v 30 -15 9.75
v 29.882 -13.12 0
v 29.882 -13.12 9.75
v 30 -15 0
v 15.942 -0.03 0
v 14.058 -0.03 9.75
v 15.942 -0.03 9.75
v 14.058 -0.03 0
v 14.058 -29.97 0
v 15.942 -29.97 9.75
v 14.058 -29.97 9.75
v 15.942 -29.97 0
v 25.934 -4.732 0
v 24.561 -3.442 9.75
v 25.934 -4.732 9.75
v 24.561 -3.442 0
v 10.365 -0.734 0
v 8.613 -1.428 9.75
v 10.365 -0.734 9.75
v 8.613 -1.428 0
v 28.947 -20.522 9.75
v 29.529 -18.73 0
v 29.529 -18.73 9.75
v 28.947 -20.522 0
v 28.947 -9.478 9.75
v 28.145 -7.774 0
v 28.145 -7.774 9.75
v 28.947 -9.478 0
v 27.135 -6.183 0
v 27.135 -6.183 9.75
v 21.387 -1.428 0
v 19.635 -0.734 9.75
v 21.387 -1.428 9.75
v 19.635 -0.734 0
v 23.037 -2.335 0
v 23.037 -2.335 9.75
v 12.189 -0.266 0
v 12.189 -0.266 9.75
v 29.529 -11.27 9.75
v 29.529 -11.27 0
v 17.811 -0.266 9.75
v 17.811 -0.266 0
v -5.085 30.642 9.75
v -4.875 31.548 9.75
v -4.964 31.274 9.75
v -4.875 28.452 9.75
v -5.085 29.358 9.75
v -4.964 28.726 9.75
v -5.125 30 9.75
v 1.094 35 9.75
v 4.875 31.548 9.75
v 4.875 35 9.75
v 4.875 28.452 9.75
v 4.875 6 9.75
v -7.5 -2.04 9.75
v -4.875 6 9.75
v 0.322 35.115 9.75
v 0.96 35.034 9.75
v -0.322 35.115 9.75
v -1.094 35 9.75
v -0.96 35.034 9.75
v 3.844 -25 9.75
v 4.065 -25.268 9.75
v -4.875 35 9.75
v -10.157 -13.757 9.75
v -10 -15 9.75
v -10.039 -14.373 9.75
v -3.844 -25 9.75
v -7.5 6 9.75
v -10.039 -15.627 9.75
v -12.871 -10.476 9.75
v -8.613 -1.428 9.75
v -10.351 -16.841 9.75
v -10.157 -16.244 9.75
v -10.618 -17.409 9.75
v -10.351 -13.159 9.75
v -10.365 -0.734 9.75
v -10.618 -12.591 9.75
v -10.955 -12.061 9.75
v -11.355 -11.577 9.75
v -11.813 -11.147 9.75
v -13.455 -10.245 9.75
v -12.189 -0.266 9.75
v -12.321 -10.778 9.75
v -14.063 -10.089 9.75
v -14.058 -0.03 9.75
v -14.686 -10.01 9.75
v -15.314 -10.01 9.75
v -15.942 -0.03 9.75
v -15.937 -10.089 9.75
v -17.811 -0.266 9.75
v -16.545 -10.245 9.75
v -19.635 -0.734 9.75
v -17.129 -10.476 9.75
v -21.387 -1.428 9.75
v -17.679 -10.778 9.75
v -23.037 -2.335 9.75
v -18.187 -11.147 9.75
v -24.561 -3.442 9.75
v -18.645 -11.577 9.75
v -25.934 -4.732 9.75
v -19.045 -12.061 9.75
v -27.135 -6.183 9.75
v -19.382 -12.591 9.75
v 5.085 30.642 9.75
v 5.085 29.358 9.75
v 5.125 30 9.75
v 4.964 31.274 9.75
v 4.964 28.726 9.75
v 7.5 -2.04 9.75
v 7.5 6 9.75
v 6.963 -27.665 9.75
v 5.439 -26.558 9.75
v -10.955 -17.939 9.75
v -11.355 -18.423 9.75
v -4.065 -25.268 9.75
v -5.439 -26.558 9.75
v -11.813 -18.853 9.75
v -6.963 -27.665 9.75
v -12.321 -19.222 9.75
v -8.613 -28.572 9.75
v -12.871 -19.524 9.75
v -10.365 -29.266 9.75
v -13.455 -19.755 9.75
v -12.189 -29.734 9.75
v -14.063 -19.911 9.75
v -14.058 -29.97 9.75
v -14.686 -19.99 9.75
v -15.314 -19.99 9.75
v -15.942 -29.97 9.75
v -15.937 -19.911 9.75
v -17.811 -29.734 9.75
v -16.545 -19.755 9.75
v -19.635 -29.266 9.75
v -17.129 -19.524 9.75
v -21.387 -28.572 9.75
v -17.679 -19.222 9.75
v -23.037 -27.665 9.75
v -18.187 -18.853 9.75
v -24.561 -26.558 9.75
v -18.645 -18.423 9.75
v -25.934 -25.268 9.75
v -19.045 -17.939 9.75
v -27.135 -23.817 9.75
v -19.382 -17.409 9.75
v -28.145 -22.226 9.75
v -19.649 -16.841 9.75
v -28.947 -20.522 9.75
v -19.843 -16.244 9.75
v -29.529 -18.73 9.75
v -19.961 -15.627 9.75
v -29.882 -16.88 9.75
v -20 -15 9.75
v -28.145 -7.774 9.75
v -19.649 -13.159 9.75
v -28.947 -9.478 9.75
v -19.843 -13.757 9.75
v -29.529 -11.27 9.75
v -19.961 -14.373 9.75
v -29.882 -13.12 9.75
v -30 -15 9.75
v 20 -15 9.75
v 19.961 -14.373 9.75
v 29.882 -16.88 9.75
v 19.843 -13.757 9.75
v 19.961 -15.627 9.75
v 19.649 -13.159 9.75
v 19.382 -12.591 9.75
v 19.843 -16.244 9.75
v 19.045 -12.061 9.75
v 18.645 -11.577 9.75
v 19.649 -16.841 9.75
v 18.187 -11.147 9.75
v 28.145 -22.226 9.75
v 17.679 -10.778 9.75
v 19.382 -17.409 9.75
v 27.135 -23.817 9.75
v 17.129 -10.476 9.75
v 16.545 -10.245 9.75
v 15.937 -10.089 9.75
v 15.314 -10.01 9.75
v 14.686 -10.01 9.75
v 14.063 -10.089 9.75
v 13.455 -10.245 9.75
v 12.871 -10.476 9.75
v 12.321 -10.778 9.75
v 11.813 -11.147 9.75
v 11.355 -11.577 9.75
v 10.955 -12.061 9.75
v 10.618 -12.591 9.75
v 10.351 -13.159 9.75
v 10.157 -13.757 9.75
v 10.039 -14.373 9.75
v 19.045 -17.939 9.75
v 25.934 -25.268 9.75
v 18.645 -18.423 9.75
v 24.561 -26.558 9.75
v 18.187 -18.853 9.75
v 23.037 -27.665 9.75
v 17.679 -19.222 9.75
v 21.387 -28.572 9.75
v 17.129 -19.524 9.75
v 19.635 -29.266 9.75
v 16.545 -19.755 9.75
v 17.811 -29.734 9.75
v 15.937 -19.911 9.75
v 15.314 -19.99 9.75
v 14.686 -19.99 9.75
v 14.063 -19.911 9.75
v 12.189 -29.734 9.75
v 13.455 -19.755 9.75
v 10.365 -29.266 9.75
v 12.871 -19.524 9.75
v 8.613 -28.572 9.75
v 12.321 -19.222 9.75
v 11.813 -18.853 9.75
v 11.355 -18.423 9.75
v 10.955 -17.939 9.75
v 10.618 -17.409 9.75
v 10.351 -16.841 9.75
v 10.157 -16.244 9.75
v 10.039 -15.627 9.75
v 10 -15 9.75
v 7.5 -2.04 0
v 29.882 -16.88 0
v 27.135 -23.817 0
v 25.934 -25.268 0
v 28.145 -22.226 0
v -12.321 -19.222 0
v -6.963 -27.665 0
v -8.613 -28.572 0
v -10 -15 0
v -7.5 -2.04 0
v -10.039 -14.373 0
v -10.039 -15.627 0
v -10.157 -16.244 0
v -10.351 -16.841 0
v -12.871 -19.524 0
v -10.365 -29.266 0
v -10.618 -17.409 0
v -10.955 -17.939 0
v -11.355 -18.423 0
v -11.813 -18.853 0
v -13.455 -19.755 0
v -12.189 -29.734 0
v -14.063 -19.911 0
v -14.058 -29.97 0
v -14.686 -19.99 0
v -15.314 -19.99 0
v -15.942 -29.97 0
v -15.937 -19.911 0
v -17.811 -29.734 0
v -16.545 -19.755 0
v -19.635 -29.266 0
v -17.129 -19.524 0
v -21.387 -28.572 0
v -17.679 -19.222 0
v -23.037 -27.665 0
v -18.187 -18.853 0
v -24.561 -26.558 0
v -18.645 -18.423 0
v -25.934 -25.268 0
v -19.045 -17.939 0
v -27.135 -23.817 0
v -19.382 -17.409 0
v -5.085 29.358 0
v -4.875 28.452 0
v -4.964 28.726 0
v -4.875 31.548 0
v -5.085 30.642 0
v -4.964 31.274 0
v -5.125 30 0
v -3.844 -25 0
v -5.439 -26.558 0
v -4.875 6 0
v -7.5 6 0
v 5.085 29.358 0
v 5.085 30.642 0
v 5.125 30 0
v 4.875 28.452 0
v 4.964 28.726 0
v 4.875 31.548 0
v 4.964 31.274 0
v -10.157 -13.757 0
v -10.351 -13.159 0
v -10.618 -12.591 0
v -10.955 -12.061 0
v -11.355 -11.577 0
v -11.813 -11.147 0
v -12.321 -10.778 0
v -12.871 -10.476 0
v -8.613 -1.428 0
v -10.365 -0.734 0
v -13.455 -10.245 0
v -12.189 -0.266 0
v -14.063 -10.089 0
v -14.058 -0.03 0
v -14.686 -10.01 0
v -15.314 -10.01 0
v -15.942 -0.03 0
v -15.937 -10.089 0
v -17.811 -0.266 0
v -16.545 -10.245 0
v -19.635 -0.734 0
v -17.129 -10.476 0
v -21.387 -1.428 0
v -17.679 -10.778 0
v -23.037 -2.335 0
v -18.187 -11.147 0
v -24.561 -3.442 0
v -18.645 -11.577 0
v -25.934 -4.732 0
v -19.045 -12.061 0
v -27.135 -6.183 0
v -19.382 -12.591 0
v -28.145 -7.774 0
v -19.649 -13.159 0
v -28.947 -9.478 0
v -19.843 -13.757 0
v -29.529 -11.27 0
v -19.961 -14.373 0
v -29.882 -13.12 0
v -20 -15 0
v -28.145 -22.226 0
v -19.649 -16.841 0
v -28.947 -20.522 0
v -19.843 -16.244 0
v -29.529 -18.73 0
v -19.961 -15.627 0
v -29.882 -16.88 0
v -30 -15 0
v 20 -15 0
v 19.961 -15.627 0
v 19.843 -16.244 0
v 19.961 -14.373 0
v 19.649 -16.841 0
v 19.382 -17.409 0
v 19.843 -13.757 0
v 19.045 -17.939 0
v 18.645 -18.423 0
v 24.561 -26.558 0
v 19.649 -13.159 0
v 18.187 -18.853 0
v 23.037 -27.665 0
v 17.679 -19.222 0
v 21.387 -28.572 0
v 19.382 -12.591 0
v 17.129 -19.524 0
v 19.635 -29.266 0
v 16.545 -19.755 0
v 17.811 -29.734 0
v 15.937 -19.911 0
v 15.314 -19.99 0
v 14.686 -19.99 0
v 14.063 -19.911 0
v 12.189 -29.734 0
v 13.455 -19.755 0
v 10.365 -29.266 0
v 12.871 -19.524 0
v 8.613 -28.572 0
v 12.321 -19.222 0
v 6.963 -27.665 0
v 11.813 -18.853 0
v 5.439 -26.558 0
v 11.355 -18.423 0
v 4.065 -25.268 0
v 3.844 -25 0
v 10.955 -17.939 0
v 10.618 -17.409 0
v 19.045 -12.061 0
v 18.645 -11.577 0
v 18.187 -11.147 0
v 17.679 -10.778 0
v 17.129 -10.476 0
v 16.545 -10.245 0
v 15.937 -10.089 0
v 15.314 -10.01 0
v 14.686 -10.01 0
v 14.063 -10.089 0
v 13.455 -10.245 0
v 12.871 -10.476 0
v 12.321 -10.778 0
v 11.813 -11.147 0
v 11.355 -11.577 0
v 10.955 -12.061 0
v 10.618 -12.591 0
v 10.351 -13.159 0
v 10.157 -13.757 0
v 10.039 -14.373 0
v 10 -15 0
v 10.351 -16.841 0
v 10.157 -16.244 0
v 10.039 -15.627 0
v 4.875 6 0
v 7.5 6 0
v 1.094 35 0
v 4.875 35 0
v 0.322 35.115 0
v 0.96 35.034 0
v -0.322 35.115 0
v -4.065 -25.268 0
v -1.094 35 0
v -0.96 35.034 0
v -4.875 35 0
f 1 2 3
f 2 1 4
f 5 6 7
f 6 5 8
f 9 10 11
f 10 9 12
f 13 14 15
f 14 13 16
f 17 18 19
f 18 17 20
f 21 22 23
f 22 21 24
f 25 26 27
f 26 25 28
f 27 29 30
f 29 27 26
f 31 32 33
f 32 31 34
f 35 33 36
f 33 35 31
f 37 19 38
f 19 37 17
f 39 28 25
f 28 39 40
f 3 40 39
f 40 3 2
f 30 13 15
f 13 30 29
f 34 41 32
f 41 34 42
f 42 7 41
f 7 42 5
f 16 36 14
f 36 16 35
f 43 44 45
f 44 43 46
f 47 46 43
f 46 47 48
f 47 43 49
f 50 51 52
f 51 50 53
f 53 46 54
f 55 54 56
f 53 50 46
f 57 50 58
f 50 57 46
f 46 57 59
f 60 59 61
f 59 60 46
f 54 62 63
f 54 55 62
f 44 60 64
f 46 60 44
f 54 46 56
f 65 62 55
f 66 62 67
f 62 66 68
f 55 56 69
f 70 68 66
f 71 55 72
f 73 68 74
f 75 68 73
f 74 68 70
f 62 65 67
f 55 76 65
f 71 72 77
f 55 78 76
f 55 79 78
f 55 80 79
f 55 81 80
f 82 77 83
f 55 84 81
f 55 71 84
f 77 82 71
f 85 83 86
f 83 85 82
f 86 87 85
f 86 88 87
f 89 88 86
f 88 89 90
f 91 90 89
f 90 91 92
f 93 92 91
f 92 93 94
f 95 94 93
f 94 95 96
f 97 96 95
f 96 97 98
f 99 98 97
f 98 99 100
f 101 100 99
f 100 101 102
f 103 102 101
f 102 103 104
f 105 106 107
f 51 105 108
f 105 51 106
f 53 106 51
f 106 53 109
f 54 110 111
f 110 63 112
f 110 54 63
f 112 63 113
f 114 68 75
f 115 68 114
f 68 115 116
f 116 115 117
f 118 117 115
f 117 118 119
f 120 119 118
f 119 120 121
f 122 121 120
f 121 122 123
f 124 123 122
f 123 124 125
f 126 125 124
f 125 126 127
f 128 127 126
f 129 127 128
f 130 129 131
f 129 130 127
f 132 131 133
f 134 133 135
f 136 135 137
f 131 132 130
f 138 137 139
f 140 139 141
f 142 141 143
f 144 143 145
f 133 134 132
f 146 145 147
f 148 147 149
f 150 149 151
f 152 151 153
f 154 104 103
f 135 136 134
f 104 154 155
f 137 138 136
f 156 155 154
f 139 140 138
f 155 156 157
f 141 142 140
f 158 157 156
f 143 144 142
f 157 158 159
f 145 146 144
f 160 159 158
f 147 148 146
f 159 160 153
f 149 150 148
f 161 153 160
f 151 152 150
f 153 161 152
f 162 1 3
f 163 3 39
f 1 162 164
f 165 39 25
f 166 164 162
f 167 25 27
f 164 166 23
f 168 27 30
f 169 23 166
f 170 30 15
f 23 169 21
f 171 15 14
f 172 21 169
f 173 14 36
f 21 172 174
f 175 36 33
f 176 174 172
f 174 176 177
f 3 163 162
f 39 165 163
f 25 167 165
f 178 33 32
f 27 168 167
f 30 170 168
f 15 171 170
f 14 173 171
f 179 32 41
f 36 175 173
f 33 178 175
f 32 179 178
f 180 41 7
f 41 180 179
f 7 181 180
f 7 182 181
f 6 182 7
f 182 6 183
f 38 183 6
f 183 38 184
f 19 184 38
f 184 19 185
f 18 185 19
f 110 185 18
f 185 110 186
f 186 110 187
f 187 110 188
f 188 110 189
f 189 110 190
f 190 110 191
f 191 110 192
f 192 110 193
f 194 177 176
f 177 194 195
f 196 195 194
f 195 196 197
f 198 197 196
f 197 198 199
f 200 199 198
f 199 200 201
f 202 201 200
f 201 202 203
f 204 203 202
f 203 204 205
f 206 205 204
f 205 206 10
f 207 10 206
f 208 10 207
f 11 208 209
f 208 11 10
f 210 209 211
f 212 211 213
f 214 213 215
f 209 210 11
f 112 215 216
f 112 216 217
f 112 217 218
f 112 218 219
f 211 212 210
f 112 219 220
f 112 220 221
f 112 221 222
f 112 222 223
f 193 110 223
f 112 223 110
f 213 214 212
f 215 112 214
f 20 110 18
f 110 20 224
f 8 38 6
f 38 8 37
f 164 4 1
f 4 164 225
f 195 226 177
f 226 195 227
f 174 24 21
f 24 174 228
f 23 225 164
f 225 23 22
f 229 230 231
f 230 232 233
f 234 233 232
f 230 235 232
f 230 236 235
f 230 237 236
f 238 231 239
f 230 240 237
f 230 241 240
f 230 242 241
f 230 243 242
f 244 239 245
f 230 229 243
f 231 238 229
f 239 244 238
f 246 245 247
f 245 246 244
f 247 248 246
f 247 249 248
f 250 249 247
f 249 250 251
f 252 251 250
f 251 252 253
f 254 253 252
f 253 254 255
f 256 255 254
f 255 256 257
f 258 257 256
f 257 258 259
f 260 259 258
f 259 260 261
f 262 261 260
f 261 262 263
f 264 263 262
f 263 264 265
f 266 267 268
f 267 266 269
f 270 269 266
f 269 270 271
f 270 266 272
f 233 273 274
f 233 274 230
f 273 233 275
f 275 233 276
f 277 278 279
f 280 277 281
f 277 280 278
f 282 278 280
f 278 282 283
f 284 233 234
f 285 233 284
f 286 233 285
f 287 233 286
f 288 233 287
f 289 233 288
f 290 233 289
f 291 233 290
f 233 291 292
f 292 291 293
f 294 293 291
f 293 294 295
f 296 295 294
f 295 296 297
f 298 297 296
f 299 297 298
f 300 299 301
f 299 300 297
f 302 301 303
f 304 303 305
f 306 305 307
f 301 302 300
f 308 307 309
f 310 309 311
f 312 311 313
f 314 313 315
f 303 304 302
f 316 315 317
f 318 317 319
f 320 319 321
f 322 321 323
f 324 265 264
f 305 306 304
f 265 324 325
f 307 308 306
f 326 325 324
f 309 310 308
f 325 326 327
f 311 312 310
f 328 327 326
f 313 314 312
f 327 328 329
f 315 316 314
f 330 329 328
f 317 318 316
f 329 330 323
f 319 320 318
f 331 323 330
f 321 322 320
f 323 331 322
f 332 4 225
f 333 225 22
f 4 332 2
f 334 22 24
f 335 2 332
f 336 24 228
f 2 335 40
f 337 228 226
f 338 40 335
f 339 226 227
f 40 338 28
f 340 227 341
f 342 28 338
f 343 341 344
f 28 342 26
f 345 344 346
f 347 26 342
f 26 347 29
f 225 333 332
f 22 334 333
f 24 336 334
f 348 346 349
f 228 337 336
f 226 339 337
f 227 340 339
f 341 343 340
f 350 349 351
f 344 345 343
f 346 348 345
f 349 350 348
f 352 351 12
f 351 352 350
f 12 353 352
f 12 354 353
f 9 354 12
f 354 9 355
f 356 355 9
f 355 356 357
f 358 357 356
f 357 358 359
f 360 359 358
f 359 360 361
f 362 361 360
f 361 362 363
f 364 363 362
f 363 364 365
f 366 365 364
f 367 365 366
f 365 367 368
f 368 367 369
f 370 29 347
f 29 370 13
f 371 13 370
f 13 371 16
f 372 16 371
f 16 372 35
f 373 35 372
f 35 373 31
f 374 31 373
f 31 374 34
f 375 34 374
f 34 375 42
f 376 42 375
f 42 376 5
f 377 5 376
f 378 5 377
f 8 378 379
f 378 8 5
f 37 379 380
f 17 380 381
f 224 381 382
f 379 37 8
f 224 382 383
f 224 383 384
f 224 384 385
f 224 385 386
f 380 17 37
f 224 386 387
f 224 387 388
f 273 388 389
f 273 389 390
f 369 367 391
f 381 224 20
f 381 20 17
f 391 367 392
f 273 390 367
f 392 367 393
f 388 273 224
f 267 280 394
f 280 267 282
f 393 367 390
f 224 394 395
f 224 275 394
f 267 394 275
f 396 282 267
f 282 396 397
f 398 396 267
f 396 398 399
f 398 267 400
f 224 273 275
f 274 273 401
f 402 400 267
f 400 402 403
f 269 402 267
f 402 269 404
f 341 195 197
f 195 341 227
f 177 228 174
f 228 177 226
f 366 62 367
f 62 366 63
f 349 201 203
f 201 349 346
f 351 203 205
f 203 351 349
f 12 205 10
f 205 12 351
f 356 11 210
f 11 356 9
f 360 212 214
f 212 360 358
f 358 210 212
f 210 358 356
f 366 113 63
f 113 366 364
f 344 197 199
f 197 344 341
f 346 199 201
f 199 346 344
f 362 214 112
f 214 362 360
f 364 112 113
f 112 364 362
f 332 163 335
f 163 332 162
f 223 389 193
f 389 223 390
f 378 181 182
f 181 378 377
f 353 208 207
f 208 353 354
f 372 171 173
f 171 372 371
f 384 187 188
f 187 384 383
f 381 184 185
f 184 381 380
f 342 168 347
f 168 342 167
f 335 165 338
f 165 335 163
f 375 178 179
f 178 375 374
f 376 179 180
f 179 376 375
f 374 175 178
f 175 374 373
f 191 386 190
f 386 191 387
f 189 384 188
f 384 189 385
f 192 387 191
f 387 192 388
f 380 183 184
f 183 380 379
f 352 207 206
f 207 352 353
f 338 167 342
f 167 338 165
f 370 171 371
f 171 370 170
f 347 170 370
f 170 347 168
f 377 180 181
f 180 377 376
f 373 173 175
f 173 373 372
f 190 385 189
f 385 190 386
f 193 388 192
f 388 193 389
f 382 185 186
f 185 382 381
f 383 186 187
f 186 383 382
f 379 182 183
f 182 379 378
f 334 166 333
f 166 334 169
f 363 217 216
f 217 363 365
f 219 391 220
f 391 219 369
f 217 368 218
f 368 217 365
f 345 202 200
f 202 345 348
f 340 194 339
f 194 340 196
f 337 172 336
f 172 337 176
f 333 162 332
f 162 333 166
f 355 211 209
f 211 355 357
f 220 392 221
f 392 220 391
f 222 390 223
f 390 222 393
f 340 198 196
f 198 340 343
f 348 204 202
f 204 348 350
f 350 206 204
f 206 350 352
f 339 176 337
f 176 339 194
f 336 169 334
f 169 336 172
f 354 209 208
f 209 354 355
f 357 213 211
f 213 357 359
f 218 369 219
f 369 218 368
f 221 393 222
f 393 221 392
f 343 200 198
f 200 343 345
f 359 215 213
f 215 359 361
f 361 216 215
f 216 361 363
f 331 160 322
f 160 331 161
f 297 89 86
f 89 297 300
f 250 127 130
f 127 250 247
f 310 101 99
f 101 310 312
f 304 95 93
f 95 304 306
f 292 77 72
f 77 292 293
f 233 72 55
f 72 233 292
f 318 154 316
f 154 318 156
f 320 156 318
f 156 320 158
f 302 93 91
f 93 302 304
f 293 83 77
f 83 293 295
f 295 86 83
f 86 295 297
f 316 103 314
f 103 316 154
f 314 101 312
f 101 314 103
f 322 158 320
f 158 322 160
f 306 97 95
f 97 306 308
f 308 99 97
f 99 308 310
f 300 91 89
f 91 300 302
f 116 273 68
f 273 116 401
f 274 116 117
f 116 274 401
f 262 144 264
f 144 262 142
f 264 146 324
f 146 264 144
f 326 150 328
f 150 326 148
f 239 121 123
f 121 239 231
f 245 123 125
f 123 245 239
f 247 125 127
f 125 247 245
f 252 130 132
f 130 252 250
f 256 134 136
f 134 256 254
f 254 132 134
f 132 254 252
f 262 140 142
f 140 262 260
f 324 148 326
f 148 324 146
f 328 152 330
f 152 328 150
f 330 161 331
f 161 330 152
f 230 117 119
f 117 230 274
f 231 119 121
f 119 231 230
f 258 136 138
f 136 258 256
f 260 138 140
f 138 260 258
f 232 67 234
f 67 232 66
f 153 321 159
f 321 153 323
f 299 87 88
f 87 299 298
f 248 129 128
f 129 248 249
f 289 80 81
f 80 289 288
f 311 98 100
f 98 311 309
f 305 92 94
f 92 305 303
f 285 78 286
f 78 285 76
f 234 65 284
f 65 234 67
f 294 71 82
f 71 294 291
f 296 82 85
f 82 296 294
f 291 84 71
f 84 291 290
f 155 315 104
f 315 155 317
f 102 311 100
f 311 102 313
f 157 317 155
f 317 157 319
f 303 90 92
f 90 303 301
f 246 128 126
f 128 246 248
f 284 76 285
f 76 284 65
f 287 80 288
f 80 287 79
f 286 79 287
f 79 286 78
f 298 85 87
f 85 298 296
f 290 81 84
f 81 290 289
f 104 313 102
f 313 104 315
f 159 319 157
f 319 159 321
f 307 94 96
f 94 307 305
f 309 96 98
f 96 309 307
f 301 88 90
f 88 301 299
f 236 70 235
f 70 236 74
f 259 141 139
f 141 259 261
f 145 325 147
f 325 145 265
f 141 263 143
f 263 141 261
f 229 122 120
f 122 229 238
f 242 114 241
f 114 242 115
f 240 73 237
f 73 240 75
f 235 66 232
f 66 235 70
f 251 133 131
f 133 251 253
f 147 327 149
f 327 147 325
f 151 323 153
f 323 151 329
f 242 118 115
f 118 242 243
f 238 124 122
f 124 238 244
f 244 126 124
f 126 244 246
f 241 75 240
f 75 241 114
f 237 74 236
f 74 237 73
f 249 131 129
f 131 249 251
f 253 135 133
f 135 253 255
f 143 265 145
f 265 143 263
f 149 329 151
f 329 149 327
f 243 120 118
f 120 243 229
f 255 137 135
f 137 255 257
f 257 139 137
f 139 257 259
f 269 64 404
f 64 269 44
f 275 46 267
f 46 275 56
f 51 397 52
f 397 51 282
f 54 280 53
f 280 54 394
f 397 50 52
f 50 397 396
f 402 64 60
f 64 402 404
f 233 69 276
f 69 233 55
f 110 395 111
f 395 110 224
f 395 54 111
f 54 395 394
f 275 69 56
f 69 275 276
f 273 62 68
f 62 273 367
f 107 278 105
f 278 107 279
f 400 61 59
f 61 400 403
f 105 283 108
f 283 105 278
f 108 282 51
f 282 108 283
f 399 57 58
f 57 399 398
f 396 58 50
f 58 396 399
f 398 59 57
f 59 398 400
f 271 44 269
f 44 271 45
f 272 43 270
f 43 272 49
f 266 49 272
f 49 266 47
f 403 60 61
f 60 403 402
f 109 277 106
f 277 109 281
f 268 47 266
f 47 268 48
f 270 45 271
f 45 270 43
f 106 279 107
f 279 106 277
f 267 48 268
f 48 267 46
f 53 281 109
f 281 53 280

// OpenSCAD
// old key handle insert (need 2 items)

// clearance
tol = 0.25;

// innere insert parameters
iih = 10;
iiw = 10;
iil = 20;

// outer insert parameters
iod = 15;
ioh = iih;
irh = iih;
irw = 15;
irl = 6;

real_h = iih - tol;

translate([-(iiw - tol) / 2, 0, 0]) cube([iiw - tol, iil + irw, real_h]);
translate([-irw / 2, -irl, 0]) cube([irw, irl * 2, real_h]);

translate([-7.5, -25, 0]) cube([15, 25, real_h]);


translate([15, -15, 0]) difference() {
	cylinder(d = 30, h = real_h, $fn = 50);
	cylinder(d = 10, h = real_h, $fn = 50);
}

translate([-15, -15, 0]) difference() {
	cylinder(d = 30, h = real_h, $fn = 50);
	cylinder(d = 10, h = real_h, $fn = 50);
}

translate([0, iil + irw - iih / 2, 0]) cylinder(d = iiw + tol, h = real_h, $fn = 50);
